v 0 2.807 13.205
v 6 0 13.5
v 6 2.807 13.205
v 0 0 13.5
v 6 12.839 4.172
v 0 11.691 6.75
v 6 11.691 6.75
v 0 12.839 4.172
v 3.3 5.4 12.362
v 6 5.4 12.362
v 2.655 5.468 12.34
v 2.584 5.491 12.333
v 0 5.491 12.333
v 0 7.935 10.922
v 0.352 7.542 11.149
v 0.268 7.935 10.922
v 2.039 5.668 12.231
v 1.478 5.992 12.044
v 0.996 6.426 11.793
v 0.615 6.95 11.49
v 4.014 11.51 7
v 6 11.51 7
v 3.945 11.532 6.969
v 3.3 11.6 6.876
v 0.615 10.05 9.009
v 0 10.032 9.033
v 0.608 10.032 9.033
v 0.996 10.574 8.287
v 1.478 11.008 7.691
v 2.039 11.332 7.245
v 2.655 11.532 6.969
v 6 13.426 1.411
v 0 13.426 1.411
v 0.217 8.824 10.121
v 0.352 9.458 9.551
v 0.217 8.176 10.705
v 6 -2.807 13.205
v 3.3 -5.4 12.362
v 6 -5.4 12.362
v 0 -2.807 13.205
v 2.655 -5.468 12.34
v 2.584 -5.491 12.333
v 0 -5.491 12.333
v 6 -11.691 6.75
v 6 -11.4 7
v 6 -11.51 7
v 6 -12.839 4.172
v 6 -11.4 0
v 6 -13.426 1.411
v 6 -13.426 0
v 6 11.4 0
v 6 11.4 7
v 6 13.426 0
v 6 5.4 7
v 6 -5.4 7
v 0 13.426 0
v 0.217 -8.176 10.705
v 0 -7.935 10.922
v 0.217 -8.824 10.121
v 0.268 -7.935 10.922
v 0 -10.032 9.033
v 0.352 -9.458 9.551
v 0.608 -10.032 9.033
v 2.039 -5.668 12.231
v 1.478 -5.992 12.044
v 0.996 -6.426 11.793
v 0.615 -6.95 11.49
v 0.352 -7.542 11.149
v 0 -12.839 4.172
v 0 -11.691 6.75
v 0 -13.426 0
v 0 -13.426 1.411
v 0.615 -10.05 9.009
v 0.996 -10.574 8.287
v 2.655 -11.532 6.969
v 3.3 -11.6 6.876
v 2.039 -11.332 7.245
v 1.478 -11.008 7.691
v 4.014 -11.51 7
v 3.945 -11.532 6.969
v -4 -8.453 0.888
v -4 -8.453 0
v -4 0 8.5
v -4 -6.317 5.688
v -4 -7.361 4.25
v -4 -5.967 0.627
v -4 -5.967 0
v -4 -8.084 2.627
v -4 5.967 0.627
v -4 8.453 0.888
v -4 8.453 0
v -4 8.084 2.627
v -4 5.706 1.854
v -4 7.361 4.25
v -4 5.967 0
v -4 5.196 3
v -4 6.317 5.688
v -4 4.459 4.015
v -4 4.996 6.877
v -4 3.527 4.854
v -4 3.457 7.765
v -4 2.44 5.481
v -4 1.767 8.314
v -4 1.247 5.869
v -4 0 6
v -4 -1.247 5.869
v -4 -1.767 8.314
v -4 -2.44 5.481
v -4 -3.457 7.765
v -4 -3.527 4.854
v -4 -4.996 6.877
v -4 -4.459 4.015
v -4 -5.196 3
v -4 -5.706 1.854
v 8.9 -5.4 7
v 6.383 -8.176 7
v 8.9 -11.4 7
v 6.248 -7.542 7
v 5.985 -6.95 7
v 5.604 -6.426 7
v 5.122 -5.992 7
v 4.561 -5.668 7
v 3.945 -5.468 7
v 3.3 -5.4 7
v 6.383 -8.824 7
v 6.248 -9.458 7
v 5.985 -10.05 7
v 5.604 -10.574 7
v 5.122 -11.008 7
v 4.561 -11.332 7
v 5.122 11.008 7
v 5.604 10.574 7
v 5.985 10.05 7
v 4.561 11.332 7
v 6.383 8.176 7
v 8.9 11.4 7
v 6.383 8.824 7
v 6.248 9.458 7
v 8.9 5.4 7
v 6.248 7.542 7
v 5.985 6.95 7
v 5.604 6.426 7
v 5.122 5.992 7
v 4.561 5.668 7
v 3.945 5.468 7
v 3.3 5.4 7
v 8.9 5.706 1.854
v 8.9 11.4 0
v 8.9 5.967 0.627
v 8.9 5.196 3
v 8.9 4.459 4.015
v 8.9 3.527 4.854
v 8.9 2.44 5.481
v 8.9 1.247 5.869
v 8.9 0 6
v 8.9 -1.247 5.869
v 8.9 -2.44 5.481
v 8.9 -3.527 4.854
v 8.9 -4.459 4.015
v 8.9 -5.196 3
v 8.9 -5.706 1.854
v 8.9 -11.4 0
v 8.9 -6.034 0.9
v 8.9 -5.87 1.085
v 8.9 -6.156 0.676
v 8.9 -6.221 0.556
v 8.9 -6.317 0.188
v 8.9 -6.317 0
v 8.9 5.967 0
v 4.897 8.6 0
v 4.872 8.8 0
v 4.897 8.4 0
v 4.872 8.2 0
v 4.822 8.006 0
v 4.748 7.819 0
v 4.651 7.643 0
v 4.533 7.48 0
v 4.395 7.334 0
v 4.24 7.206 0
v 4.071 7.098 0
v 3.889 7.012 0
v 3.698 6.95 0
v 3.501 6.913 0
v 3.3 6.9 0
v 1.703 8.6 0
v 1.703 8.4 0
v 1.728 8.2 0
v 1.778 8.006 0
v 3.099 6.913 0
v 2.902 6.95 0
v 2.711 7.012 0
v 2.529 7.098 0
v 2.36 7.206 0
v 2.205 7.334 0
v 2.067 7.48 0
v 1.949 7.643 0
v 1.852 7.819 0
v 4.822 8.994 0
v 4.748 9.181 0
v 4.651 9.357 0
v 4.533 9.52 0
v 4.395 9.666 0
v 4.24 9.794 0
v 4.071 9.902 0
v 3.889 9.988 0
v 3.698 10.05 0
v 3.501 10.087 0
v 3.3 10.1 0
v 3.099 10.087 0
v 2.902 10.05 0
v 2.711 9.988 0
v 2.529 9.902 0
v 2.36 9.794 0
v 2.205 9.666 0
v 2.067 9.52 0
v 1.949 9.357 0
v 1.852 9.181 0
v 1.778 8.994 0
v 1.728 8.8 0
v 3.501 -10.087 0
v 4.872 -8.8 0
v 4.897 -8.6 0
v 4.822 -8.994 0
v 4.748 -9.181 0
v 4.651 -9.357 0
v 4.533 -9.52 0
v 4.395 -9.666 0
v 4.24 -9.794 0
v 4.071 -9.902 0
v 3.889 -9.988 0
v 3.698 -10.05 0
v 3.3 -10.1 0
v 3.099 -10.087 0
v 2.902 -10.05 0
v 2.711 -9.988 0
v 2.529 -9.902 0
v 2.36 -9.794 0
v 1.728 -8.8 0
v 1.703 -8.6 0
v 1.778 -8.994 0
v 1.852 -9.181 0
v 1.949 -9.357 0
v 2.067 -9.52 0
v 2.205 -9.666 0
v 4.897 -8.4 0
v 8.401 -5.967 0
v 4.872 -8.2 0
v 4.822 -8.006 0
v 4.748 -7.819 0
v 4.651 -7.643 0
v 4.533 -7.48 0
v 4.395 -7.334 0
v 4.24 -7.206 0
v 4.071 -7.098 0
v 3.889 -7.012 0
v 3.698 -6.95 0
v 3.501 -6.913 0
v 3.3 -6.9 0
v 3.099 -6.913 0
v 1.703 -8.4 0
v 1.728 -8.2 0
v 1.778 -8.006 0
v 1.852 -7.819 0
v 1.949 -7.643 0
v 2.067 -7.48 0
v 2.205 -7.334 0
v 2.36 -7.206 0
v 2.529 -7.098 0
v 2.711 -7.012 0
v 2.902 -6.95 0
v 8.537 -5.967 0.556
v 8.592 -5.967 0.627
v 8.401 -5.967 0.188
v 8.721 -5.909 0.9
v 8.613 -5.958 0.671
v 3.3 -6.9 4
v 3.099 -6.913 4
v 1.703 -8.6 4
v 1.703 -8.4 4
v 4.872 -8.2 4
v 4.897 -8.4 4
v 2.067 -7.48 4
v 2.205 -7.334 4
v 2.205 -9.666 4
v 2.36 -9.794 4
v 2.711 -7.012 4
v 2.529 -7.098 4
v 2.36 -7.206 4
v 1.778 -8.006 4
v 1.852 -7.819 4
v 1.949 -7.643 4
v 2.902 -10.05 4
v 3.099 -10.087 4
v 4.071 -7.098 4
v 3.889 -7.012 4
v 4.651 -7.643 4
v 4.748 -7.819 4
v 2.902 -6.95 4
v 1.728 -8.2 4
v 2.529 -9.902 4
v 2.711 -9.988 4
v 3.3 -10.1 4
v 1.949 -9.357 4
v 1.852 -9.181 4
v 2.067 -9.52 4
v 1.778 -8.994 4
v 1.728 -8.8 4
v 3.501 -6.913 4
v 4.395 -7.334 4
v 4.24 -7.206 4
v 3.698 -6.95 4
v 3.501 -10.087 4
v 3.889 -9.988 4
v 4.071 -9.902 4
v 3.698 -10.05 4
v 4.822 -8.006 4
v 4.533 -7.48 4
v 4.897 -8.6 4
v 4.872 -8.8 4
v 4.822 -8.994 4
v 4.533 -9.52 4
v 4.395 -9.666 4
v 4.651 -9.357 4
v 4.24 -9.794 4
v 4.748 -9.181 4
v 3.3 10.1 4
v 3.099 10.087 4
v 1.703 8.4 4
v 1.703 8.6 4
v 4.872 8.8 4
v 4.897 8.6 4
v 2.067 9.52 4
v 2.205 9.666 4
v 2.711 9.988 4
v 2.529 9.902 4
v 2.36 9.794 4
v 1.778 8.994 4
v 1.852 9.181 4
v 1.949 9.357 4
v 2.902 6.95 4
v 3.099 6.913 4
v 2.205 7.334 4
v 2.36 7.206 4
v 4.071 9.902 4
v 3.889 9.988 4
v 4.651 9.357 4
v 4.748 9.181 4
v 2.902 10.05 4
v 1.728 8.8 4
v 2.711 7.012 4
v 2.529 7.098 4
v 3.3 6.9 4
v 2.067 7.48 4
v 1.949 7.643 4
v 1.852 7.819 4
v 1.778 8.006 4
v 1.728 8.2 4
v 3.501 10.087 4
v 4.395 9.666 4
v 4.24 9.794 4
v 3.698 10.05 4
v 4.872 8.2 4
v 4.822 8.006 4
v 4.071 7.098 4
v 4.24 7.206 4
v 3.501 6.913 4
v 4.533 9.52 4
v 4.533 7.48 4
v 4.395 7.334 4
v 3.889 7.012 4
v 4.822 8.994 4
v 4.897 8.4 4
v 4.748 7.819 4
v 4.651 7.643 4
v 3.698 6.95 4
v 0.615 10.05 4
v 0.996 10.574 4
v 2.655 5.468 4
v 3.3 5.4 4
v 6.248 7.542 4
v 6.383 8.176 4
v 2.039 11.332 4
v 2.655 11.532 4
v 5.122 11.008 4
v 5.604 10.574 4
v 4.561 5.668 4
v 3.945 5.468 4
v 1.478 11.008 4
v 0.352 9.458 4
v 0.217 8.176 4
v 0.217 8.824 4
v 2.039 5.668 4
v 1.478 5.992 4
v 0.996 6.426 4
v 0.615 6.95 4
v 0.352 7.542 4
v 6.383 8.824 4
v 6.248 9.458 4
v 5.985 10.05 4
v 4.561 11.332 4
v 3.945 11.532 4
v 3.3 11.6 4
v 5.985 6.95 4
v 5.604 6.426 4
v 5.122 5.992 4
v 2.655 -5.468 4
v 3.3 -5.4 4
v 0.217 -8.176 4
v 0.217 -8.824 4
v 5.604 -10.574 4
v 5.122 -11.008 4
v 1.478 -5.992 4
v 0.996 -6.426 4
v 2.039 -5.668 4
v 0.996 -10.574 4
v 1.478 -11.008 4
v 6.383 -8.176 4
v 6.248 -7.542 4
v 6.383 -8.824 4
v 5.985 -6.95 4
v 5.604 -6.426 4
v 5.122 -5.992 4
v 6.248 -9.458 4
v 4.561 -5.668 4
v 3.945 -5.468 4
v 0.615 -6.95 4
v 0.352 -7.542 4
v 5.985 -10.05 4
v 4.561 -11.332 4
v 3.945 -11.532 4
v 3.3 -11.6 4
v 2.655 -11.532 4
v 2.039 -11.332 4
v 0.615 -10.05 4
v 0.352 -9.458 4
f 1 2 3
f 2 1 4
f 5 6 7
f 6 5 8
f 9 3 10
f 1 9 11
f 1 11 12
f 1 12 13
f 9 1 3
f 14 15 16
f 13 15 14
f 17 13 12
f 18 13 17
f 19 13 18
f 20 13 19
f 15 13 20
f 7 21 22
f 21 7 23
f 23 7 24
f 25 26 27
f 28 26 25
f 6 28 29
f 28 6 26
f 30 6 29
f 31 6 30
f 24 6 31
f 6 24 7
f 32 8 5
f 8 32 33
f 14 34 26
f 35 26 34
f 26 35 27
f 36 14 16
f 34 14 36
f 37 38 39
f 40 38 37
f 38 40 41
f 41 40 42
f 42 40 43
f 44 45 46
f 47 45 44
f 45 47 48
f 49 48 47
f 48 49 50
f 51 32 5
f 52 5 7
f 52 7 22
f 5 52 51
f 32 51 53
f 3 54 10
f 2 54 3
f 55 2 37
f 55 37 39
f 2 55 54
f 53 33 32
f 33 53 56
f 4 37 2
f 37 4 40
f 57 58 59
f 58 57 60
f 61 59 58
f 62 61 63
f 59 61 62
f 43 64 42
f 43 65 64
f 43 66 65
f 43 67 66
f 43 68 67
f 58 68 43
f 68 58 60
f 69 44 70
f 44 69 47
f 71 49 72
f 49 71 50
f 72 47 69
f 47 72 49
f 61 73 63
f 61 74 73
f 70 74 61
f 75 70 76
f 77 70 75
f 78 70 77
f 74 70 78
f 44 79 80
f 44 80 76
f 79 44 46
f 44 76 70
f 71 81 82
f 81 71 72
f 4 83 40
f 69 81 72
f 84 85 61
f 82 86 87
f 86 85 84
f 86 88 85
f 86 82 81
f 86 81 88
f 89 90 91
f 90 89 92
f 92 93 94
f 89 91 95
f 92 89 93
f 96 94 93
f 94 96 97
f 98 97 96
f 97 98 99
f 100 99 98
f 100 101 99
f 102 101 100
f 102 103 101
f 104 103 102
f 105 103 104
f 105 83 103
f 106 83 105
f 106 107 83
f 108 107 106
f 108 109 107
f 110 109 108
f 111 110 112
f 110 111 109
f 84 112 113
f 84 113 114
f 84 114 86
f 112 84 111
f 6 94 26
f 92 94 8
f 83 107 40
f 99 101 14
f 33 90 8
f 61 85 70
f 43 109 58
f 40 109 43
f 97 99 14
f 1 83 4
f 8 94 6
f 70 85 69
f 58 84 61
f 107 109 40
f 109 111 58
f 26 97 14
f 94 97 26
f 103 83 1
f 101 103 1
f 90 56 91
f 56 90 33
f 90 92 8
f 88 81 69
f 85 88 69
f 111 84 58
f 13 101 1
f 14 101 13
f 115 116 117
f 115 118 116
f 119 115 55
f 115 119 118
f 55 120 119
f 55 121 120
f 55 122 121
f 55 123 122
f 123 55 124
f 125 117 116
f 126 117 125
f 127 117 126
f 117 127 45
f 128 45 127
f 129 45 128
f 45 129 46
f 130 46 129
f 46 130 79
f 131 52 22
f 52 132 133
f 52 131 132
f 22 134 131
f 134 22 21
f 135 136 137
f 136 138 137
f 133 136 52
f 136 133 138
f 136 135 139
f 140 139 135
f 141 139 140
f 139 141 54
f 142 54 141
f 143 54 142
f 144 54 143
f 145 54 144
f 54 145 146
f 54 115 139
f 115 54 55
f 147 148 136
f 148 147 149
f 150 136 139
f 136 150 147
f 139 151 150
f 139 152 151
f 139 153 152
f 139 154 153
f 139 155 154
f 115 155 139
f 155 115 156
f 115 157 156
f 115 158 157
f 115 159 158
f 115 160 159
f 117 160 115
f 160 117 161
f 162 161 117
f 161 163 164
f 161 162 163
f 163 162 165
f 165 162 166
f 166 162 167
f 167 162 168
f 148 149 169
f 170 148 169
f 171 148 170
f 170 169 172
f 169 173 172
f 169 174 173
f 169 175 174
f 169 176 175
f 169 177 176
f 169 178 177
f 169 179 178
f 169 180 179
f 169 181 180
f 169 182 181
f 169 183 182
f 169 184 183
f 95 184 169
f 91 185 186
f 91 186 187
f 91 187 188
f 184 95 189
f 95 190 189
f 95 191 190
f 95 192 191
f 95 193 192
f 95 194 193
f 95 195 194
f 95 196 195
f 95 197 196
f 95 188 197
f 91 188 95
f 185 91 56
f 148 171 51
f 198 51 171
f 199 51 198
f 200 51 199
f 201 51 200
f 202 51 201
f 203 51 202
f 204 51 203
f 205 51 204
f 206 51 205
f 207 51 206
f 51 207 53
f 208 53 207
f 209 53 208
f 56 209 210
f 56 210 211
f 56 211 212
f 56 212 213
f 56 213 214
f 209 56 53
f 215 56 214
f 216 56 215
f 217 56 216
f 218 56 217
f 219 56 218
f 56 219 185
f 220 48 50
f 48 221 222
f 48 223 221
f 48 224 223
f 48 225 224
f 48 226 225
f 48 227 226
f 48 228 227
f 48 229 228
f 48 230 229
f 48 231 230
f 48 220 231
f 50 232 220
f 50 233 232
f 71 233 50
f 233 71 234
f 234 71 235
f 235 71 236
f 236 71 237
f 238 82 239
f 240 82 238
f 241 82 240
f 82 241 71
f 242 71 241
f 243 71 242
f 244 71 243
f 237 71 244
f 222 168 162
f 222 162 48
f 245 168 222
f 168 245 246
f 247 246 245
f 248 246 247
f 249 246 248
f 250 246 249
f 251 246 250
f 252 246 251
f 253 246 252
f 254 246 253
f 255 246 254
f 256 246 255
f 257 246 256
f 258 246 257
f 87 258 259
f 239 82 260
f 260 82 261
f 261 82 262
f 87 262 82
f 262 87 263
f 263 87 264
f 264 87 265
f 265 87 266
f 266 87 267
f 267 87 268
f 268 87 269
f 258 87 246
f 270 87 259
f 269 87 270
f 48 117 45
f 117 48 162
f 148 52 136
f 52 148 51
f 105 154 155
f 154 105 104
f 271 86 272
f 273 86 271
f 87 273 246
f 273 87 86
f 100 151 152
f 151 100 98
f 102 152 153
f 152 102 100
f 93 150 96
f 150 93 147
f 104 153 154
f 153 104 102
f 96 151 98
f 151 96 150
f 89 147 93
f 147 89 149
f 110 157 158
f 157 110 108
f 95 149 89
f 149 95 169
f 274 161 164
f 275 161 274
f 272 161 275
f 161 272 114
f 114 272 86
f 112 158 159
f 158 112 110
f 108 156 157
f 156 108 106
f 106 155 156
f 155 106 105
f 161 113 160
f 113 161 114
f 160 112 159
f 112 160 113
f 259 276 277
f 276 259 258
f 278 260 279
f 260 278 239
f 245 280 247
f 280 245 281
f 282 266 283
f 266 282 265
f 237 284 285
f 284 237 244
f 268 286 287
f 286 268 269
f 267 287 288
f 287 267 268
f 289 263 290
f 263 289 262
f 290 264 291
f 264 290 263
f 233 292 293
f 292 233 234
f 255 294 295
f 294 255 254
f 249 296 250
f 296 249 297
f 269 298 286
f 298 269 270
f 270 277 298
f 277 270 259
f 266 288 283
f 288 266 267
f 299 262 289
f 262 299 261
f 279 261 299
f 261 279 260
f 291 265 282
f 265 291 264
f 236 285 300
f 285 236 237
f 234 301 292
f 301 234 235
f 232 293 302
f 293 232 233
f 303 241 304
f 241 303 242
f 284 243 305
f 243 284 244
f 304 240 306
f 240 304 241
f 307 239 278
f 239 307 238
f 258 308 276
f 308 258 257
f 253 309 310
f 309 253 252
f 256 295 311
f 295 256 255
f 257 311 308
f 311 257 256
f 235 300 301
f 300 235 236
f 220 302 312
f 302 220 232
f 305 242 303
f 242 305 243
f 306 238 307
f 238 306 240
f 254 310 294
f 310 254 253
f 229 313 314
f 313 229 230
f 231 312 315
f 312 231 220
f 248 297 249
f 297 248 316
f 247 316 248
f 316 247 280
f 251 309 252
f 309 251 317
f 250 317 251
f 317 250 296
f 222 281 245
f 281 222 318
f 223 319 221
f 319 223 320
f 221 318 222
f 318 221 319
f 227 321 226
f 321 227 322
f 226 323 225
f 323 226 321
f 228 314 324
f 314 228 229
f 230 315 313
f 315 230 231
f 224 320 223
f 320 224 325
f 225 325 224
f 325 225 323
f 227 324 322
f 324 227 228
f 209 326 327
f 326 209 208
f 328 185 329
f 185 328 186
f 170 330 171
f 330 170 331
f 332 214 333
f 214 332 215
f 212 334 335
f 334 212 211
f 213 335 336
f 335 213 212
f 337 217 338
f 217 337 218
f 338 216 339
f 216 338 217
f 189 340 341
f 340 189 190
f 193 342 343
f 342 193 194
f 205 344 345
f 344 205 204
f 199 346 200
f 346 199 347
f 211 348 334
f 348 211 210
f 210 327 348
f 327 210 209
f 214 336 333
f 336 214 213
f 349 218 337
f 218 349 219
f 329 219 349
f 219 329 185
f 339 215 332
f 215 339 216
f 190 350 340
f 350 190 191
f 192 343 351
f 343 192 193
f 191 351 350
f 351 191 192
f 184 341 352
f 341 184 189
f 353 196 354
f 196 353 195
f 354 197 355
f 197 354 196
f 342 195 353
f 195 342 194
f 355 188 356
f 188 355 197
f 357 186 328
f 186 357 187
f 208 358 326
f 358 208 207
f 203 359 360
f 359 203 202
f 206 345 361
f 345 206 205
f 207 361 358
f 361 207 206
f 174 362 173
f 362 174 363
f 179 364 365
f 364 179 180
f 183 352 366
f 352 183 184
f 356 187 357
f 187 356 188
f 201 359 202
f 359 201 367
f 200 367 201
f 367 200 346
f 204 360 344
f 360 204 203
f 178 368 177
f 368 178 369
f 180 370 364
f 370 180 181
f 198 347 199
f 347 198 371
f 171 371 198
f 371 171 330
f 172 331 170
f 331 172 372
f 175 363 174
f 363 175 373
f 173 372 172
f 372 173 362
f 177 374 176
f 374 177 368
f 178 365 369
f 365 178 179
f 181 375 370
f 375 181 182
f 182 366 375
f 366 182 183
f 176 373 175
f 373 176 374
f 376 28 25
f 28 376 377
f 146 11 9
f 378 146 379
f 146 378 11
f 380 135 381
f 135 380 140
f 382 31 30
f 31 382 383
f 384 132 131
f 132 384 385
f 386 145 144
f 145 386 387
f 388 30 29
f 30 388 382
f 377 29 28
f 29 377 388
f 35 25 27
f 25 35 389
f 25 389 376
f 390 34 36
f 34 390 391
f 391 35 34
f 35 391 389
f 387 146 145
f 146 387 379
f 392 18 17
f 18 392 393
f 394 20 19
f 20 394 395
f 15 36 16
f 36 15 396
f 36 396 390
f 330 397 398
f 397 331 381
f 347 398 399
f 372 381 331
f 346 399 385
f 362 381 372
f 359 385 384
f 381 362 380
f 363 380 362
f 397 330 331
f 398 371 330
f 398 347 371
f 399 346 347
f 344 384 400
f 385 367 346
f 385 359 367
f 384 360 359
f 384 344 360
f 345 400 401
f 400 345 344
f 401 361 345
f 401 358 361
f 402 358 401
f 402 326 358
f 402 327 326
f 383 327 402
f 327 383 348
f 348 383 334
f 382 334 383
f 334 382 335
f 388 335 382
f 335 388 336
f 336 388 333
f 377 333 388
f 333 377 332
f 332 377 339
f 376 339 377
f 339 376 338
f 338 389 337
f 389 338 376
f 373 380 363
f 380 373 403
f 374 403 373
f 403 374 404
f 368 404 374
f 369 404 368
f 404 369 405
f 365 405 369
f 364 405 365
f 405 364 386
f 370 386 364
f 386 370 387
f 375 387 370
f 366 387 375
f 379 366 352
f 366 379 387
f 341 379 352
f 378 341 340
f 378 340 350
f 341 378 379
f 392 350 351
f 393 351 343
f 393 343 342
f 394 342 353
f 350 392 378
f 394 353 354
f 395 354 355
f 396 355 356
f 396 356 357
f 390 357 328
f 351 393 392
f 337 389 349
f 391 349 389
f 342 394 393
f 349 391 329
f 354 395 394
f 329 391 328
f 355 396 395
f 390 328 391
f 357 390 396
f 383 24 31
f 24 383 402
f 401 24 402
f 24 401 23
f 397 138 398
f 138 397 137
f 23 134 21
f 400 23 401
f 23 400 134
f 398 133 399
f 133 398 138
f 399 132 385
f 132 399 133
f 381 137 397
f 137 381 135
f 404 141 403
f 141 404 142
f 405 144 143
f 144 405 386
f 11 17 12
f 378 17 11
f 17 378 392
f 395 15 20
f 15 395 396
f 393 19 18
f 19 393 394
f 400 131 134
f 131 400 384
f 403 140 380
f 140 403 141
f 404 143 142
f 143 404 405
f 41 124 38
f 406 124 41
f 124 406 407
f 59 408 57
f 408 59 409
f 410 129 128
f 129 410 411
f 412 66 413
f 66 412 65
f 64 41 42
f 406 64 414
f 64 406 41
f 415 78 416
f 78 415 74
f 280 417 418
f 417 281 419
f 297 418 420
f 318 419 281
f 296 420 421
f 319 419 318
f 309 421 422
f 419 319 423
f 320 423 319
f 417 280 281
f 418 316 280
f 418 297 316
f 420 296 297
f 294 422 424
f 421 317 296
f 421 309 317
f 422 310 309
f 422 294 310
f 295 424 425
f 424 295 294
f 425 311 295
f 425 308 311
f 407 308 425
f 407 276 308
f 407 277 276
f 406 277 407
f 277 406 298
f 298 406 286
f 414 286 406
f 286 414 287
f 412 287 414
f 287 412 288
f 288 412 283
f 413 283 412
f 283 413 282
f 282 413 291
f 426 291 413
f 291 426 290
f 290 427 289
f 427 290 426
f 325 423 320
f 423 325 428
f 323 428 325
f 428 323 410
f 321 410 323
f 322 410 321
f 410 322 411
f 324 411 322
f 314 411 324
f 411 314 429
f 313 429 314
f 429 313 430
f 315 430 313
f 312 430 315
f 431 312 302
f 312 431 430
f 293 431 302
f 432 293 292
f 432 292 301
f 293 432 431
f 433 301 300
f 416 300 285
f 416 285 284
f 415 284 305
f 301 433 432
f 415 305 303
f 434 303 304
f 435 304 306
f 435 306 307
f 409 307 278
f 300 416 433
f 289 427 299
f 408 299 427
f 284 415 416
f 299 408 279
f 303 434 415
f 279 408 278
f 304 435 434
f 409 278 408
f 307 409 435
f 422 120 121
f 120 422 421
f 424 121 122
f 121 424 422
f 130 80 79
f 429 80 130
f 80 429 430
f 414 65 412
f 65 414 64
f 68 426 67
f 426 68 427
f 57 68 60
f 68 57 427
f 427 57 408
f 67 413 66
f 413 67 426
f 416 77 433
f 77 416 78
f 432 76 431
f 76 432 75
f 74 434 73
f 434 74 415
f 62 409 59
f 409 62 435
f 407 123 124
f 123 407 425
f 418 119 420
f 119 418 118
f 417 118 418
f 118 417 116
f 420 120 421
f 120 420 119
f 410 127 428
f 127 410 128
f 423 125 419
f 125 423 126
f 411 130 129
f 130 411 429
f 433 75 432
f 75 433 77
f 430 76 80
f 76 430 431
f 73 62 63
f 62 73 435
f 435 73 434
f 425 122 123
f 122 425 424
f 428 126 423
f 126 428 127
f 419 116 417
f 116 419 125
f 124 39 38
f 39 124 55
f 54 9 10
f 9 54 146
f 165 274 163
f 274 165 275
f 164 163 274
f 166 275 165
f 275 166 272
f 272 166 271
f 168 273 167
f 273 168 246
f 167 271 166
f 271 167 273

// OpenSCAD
// PRUSA iteration4
// Extruder cable clip
// GNU GPL v3
// Josef Průša <iam@josefprusa.cz> and contributors
// http://www.reprap.org/wiki/Prusa_Mendel
// http://prusamendel.org

module extruder_cable_clip()
{
        
    difference(){
    difference()
    {
        union()
        {
            // body shape
            translate([-6,28,28]) rotate([0,90,0]) cylinder(h=6,r=13.5,$fn=30);  
            translate([-10,28,28]) rotate([0,90,0]) cylinder(h=4,r1=8.5,r2=13.5, $fn=30);  
            translate([0,16.6,28]) cube([2.9,22.8,7]); 
        }
        
        // bottom cut and shape
        translate([-15,7,13]) cube([30,40,15]); 
        translate([-20,28,28]) rotate([0,90,0]) cylinder(h=40,r=6, $fn=30);
        
        // screws
        translate([-2.7,19.5,25]) rotate([0,0,90]) cylinder(h= 10, r = 1.6, $fn=50); 
        translate([-2.7,36.5,25]) rotate([0,0,90]) cylinder( h = 10, r = 1.6, $fn=50); 
        translate([-2.7,36.5,32]) rotate([0,0,90]) cylinder( h = 13, r = 3.1, $fn=30);
        translate([-2.7,19.5,32]) rotate([0,0,90]) cylinder( h = 13, r = 3.1, $fn=30); 
        
        // screw heads opening
        translate([-2.7,16.4,35]) cube([10,6.2,15]); 
        translate([-2.7,33.4,35]) cube([10,6.2,15]); 
        
        
    }
    
    difference()
    {
        // cable grip
        translate([-8,28,28]) rotate([0,90,0]) cylinder( h = 10, r = 6, $fn=30);
        translate([-20,28,28]) rotate([0,90,0]) cylinder( h = 40, r = 5.5, $fn=30);
        translate([-15,7,13]) cube([30,40,15]); 
        translate([-6,7,13]) cube([2,40,25]); 
        translate([-2,7,13]) cube([2,40,25]); 
        
    }
    
    
    //nylon hole
        
        translate([-3,28,28]) rotate([35,90,0]) cylinder( h = 24,r = 1.8,$fn=30);}}


//translate([0,0,0]) extruder_cable_clip();

translate([6,-28,-28]) extruder_cable_clip();
